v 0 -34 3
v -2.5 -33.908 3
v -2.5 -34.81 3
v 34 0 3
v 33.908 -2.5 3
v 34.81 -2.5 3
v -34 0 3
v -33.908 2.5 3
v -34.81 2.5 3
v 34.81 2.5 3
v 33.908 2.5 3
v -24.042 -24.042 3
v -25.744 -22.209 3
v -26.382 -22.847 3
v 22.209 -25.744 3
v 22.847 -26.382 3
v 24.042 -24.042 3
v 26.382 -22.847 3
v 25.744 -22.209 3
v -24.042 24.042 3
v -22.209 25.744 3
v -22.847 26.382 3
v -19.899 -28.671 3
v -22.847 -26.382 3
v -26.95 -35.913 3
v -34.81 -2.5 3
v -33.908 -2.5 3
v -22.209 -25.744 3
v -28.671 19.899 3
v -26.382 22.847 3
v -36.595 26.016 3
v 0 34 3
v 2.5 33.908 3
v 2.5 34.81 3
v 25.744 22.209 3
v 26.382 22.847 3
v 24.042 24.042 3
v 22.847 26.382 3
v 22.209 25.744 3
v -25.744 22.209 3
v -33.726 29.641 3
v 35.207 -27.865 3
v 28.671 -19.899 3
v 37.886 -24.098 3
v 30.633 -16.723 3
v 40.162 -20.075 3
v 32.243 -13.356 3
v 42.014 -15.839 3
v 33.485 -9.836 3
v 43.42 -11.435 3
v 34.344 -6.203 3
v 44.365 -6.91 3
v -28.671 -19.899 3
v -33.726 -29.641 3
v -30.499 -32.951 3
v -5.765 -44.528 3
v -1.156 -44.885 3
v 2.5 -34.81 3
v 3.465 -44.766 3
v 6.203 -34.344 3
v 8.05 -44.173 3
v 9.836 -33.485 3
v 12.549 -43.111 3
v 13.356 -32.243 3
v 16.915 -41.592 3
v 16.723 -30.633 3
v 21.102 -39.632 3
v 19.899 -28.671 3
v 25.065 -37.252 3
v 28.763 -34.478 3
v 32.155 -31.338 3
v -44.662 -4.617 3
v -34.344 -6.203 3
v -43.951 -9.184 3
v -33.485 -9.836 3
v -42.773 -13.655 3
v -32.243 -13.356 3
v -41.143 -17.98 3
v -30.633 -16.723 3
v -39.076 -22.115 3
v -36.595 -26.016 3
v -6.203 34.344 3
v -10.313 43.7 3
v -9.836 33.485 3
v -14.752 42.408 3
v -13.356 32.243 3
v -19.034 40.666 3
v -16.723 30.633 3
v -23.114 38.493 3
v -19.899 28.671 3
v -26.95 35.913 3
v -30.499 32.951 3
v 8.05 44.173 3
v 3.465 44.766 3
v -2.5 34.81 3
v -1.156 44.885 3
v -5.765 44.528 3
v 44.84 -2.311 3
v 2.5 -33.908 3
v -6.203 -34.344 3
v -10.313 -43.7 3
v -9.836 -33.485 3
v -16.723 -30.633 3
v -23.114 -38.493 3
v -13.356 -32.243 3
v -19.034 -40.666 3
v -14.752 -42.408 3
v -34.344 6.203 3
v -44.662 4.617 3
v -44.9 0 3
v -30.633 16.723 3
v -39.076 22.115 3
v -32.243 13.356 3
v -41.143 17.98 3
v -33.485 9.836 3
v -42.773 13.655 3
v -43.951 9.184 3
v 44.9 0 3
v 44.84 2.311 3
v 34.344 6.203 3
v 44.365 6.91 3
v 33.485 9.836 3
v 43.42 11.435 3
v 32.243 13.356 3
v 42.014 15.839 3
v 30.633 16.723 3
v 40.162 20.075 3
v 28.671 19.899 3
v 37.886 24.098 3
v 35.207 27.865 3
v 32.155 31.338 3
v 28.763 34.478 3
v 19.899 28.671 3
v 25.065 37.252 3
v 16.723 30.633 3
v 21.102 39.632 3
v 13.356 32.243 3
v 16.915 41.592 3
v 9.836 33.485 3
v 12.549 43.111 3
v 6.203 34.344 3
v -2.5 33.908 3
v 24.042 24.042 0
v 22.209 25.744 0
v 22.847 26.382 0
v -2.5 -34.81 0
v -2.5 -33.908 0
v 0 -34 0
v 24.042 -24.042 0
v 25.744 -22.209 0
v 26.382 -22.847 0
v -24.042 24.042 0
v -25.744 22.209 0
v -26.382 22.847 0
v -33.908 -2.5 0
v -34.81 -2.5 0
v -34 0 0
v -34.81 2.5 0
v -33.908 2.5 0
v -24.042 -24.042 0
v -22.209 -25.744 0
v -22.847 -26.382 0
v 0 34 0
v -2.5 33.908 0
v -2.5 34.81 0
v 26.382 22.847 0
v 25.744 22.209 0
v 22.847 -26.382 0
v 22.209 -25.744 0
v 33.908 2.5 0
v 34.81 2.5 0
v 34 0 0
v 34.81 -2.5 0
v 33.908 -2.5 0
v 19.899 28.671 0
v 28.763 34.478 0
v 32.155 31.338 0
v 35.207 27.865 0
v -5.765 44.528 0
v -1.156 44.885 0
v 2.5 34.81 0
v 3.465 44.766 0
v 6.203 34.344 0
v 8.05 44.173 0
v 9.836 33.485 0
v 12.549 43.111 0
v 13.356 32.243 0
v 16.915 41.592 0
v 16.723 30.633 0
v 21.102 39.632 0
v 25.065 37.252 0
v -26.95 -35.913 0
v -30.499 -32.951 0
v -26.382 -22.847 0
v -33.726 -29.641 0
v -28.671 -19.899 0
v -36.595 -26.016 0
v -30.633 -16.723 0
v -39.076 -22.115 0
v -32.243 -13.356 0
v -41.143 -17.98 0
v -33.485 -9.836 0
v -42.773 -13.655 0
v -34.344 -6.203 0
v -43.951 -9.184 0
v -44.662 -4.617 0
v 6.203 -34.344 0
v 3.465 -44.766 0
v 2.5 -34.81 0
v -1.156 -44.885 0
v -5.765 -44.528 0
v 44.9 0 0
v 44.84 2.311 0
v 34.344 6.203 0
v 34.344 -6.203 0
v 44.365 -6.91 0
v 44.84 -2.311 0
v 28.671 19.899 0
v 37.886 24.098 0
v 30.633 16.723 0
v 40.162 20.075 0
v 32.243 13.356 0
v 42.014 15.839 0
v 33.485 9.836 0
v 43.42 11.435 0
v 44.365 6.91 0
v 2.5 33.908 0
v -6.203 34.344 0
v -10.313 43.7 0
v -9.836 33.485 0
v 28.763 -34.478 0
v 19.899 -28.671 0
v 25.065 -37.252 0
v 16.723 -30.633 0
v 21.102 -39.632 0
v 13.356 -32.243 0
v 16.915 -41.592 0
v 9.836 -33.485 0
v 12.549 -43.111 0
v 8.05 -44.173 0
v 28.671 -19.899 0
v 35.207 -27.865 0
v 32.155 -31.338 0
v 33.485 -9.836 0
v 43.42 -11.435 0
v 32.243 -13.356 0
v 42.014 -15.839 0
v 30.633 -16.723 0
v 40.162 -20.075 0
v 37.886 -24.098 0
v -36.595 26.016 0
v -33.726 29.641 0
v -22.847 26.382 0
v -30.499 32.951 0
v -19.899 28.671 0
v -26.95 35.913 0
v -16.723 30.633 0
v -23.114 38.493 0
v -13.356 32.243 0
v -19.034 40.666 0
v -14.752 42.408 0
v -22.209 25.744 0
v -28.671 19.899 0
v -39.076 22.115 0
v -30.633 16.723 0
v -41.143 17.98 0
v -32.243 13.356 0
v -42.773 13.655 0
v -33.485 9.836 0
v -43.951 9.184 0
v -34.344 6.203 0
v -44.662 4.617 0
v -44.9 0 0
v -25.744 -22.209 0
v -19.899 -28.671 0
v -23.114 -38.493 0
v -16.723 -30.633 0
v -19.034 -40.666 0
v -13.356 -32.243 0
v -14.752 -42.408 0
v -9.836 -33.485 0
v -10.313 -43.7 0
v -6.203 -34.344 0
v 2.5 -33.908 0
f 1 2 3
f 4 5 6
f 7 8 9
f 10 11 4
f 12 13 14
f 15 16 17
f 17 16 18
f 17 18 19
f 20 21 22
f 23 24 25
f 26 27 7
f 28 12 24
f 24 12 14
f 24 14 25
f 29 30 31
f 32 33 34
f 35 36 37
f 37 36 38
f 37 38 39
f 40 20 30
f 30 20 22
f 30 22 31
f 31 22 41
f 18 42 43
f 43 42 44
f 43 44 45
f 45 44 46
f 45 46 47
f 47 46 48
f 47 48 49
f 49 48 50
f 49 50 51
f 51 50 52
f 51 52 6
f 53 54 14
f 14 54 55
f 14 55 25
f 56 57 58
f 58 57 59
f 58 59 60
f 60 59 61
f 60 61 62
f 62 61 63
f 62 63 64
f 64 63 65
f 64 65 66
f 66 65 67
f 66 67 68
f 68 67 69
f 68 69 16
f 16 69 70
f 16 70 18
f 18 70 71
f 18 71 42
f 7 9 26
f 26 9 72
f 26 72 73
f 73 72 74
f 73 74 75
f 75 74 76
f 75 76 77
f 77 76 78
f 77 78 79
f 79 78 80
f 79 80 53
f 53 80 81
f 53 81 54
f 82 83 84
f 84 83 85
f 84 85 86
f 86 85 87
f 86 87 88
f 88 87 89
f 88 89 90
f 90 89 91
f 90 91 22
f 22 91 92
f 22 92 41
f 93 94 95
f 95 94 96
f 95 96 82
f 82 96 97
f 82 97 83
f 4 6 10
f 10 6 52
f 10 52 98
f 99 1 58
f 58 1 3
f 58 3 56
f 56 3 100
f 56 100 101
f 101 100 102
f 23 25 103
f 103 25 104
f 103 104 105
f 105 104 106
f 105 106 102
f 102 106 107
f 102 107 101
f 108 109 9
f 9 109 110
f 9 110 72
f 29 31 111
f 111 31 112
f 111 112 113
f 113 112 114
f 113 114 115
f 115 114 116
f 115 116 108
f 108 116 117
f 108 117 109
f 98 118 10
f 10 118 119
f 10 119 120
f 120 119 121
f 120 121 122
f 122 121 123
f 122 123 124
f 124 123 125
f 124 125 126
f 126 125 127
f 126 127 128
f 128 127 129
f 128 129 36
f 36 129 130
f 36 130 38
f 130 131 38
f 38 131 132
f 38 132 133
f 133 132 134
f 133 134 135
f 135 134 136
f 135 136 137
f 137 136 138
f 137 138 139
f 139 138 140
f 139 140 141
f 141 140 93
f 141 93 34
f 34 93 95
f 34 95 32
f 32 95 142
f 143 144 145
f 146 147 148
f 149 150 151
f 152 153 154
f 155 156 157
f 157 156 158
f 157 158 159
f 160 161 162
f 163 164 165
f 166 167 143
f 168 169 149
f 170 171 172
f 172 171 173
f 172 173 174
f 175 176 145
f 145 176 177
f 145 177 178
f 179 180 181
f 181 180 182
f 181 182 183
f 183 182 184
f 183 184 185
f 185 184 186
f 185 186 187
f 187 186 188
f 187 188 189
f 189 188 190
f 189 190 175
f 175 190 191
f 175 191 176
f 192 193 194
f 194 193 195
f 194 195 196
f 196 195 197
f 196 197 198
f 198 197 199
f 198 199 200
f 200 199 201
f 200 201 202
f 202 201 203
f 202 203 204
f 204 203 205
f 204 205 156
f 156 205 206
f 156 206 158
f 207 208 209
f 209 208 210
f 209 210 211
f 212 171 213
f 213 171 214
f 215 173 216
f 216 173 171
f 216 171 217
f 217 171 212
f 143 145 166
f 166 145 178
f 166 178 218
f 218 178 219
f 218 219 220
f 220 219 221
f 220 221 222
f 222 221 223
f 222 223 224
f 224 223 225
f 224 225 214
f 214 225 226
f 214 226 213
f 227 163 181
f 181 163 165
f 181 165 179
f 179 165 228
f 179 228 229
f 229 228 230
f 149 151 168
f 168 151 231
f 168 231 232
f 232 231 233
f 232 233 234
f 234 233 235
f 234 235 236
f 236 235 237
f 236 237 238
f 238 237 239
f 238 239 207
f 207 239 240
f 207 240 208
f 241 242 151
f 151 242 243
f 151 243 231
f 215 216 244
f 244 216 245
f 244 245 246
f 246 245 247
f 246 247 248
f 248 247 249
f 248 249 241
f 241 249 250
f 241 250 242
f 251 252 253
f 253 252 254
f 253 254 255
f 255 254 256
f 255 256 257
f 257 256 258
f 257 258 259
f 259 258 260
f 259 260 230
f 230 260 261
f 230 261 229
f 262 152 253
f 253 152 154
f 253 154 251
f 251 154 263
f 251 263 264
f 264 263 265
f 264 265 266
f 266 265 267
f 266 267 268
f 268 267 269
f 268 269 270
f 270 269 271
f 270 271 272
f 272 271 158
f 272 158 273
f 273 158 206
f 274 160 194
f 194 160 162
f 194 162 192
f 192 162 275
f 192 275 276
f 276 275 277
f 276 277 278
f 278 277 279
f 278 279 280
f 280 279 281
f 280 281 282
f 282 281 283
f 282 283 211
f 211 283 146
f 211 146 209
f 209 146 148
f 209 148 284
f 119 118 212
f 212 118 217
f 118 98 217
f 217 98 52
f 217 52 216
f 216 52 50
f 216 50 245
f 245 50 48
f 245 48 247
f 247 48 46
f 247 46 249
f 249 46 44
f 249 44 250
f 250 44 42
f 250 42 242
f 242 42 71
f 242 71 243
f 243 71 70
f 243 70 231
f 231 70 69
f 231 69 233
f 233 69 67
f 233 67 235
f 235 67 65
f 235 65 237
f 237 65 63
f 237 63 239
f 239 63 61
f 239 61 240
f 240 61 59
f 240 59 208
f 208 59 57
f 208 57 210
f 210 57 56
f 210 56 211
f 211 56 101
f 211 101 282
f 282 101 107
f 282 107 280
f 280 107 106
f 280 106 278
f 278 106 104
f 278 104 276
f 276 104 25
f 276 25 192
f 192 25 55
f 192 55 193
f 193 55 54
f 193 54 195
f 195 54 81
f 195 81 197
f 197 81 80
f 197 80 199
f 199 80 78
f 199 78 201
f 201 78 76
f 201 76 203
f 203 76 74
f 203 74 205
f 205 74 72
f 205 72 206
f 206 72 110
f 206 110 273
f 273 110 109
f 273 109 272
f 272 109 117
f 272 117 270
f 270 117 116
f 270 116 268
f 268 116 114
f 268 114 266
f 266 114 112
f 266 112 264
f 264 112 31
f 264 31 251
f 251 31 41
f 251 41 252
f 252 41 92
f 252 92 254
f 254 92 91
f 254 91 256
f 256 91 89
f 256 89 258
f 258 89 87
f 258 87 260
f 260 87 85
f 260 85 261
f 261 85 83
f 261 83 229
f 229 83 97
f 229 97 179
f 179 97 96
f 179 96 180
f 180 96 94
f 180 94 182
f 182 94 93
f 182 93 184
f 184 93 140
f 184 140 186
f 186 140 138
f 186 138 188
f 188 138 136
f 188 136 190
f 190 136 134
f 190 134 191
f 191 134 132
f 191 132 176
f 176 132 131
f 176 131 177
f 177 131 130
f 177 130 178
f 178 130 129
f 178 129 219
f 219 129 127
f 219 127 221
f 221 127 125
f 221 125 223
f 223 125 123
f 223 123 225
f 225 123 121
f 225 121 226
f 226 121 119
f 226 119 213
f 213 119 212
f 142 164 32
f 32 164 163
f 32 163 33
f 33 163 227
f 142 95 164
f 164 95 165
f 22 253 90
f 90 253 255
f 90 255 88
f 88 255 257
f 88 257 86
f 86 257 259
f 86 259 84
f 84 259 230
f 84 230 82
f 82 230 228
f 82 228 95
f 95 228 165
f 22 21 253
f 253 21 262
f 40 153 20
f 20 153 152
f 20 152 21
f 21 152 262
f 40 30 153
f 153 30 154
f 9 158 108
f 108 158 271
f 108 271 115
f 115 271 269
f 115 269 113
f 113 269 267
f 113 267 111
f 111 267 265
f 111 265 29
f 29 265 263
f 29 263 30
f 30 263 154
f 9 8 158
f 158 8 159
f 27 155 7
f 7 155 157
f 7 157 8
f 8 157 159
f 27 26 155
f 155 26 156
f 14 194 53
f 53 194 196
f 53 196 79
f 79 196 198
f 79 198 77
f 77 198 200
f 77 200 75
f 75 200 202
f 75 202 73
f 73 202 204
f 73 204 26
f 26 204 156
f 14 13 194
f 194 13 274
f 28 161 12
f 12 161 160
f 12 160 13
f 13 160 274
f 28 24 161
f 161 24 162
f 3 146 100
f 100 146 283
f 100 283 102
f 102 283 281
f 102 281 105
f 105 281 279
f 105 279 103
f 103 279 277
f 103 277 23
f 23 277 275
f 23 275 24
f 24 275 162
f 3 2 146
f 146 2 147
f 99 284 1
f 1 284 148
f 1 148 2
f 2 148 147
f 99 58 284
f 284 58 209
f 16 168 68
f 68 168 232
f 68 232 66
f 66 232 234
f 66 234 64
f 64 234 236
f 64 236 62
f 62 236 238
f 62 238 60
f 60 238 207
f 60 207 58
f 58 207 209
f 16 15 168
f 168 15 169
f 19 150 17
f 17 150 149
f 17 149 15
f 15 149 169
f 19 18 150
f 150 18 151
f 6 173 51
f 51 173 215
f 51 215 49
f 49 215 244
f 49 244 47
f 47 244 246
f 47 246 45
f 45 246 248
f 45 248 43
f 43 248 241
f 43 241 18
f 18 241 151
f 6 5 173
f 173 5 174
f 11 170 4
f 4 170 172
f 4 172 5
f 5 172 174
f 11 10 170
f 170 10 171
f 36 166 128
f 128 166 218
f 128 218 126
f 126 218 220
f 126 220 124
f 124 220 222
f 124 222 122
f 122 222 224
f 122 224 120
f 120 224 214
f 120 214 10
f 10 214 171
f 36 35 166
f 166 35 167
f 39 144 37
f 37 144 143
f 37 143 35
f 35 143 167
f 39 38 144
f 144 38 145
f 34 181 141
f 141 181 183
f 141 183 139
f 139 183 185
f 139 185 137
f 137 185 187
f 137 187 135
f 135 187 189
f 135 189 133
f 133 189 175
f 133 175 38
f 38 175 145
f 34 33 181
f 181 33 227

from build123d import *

# Parameters (mm, degrees)
CROQUIS1_R              = 44.9
SALIENTE_EXTRUIR1_DEPTH = 3


with BuildPart() as part:
    # Croquis1 → Saliente-Extruir1 (new body)
    with BuildSketch(Plane.XY):
        Circle(CROQUIS1_R)
        with BuildLine():
            Line((-2.5, 33.907963666), (-2.5, 34.81034329))
            ThreePointArc((-2.5, 34.81034329), (-13.35565179, 32.243395685), (-22.846862843, 26.382396749))
            Line((-22.846862843, 26.382396749), (-22.208784092, 25.744317998))
            ThreePointArc((-22.208784092, 25.744317998), (-24.04163056, 24.04163056), (-25.744317998, 22.208784092))
            Line((-25.744317998, 22.208784092), (-26.382396749, 22.846862843))
            ThreePointArc((-26.382396749, 22.846862843), (-32.243395685, 13.35565179), (-34.81034329, 2.5))
            Line((-34.81034329, 2.5), (-33.907963666, 2.5))
            ThreePointArc((-33.907963666, 2.5), (-34, 0), (-33.907963666, -2.5))
            Line((-33.907963666, -2.5), (-34.81034329, -2.5))
            ThreePointArc((-34.81034329, -2.5), (-32.243395685, -13.35565179), (-26.382396749, -22.846862843))
            Line((-26.382396749, -22.846862843), (-25.744317998, -22.208784092))
            ThreePointArc((-25.744317998, -22.208784092), (-24.04163056, -24.04163056), (-22.208784092, -25.744317998))
            Line((-22.208784092, -25.744317998), (-22.846862843, -26.382396749))
            ThreePointArc((-22.846862843, -26.382396749), (-13.35565179, -32.243395685), (-2.5, -34.81034329))
            Line((-2.5, -34.81034329), (-2.5, -33.907963666))
            ThreePointArc((-2.5, -33.907963666), (0, -34), (2.5, -33.907963666))
            Line((2.5, -33.907963666), (2.5, -34.81034329))
            ThreePointArc((2.5, -34.81034329), (13.35565179, -32.243395685), (22.846862843, -26.382396749))
            Line((22.846862843, -26.382396749), (22.208784092, -25.744317998))
            ThreePointArc((22.208784092, -25.744317998), (24.04163056, -24.04163056), (25.744317998, -22.208784092))
            Line((25.744317998, -22.208784092), (26.382396749, -22.846862843))
            ThreePointArc((26.382396749, -22.846862843), (32.243395685, -13.35565179), (34.81034329, -2.5))
            Line((34.81034329, -2.5), (33.907963666, -2.5))
            ThreePointArc((33.907963666, -2.5), (34, 0), (33.907963666, 2.5))
            Line((33.907963666, 2.5), (34.81034329, 2.5))
            ThreePointArc((34.81034329, 2.5), (32.243395685, 13.35565179), (26.382396749, 22.846862843))
            Line((26.382396749, 22.846862843), (25.744317998, 22.208784092))
            ThreePointArc((25.744317998, 22.208784092), (24.04163056, 24.04163056), (22.208784092, 25.744317998))
            Line((22.208784092, 25.744317998), (22.846862843, 26.382396749))
            ThreePointArc((22.846862843, 26.382396749), (13.35565179, 32.243395685), (2.5, 34.81034329))
            Line((2.5, 34.81034329), (2.5, 33.907963666))
            ThreePointArc((2.5, 33.907963666), (0, 34), (-2.5, 33.907963666))
        make_face(mode=Mode.SUBTRACT)
    extrude(amount=SALIENTE_EXTRUIR1_DEPTH)


solid = part.part
